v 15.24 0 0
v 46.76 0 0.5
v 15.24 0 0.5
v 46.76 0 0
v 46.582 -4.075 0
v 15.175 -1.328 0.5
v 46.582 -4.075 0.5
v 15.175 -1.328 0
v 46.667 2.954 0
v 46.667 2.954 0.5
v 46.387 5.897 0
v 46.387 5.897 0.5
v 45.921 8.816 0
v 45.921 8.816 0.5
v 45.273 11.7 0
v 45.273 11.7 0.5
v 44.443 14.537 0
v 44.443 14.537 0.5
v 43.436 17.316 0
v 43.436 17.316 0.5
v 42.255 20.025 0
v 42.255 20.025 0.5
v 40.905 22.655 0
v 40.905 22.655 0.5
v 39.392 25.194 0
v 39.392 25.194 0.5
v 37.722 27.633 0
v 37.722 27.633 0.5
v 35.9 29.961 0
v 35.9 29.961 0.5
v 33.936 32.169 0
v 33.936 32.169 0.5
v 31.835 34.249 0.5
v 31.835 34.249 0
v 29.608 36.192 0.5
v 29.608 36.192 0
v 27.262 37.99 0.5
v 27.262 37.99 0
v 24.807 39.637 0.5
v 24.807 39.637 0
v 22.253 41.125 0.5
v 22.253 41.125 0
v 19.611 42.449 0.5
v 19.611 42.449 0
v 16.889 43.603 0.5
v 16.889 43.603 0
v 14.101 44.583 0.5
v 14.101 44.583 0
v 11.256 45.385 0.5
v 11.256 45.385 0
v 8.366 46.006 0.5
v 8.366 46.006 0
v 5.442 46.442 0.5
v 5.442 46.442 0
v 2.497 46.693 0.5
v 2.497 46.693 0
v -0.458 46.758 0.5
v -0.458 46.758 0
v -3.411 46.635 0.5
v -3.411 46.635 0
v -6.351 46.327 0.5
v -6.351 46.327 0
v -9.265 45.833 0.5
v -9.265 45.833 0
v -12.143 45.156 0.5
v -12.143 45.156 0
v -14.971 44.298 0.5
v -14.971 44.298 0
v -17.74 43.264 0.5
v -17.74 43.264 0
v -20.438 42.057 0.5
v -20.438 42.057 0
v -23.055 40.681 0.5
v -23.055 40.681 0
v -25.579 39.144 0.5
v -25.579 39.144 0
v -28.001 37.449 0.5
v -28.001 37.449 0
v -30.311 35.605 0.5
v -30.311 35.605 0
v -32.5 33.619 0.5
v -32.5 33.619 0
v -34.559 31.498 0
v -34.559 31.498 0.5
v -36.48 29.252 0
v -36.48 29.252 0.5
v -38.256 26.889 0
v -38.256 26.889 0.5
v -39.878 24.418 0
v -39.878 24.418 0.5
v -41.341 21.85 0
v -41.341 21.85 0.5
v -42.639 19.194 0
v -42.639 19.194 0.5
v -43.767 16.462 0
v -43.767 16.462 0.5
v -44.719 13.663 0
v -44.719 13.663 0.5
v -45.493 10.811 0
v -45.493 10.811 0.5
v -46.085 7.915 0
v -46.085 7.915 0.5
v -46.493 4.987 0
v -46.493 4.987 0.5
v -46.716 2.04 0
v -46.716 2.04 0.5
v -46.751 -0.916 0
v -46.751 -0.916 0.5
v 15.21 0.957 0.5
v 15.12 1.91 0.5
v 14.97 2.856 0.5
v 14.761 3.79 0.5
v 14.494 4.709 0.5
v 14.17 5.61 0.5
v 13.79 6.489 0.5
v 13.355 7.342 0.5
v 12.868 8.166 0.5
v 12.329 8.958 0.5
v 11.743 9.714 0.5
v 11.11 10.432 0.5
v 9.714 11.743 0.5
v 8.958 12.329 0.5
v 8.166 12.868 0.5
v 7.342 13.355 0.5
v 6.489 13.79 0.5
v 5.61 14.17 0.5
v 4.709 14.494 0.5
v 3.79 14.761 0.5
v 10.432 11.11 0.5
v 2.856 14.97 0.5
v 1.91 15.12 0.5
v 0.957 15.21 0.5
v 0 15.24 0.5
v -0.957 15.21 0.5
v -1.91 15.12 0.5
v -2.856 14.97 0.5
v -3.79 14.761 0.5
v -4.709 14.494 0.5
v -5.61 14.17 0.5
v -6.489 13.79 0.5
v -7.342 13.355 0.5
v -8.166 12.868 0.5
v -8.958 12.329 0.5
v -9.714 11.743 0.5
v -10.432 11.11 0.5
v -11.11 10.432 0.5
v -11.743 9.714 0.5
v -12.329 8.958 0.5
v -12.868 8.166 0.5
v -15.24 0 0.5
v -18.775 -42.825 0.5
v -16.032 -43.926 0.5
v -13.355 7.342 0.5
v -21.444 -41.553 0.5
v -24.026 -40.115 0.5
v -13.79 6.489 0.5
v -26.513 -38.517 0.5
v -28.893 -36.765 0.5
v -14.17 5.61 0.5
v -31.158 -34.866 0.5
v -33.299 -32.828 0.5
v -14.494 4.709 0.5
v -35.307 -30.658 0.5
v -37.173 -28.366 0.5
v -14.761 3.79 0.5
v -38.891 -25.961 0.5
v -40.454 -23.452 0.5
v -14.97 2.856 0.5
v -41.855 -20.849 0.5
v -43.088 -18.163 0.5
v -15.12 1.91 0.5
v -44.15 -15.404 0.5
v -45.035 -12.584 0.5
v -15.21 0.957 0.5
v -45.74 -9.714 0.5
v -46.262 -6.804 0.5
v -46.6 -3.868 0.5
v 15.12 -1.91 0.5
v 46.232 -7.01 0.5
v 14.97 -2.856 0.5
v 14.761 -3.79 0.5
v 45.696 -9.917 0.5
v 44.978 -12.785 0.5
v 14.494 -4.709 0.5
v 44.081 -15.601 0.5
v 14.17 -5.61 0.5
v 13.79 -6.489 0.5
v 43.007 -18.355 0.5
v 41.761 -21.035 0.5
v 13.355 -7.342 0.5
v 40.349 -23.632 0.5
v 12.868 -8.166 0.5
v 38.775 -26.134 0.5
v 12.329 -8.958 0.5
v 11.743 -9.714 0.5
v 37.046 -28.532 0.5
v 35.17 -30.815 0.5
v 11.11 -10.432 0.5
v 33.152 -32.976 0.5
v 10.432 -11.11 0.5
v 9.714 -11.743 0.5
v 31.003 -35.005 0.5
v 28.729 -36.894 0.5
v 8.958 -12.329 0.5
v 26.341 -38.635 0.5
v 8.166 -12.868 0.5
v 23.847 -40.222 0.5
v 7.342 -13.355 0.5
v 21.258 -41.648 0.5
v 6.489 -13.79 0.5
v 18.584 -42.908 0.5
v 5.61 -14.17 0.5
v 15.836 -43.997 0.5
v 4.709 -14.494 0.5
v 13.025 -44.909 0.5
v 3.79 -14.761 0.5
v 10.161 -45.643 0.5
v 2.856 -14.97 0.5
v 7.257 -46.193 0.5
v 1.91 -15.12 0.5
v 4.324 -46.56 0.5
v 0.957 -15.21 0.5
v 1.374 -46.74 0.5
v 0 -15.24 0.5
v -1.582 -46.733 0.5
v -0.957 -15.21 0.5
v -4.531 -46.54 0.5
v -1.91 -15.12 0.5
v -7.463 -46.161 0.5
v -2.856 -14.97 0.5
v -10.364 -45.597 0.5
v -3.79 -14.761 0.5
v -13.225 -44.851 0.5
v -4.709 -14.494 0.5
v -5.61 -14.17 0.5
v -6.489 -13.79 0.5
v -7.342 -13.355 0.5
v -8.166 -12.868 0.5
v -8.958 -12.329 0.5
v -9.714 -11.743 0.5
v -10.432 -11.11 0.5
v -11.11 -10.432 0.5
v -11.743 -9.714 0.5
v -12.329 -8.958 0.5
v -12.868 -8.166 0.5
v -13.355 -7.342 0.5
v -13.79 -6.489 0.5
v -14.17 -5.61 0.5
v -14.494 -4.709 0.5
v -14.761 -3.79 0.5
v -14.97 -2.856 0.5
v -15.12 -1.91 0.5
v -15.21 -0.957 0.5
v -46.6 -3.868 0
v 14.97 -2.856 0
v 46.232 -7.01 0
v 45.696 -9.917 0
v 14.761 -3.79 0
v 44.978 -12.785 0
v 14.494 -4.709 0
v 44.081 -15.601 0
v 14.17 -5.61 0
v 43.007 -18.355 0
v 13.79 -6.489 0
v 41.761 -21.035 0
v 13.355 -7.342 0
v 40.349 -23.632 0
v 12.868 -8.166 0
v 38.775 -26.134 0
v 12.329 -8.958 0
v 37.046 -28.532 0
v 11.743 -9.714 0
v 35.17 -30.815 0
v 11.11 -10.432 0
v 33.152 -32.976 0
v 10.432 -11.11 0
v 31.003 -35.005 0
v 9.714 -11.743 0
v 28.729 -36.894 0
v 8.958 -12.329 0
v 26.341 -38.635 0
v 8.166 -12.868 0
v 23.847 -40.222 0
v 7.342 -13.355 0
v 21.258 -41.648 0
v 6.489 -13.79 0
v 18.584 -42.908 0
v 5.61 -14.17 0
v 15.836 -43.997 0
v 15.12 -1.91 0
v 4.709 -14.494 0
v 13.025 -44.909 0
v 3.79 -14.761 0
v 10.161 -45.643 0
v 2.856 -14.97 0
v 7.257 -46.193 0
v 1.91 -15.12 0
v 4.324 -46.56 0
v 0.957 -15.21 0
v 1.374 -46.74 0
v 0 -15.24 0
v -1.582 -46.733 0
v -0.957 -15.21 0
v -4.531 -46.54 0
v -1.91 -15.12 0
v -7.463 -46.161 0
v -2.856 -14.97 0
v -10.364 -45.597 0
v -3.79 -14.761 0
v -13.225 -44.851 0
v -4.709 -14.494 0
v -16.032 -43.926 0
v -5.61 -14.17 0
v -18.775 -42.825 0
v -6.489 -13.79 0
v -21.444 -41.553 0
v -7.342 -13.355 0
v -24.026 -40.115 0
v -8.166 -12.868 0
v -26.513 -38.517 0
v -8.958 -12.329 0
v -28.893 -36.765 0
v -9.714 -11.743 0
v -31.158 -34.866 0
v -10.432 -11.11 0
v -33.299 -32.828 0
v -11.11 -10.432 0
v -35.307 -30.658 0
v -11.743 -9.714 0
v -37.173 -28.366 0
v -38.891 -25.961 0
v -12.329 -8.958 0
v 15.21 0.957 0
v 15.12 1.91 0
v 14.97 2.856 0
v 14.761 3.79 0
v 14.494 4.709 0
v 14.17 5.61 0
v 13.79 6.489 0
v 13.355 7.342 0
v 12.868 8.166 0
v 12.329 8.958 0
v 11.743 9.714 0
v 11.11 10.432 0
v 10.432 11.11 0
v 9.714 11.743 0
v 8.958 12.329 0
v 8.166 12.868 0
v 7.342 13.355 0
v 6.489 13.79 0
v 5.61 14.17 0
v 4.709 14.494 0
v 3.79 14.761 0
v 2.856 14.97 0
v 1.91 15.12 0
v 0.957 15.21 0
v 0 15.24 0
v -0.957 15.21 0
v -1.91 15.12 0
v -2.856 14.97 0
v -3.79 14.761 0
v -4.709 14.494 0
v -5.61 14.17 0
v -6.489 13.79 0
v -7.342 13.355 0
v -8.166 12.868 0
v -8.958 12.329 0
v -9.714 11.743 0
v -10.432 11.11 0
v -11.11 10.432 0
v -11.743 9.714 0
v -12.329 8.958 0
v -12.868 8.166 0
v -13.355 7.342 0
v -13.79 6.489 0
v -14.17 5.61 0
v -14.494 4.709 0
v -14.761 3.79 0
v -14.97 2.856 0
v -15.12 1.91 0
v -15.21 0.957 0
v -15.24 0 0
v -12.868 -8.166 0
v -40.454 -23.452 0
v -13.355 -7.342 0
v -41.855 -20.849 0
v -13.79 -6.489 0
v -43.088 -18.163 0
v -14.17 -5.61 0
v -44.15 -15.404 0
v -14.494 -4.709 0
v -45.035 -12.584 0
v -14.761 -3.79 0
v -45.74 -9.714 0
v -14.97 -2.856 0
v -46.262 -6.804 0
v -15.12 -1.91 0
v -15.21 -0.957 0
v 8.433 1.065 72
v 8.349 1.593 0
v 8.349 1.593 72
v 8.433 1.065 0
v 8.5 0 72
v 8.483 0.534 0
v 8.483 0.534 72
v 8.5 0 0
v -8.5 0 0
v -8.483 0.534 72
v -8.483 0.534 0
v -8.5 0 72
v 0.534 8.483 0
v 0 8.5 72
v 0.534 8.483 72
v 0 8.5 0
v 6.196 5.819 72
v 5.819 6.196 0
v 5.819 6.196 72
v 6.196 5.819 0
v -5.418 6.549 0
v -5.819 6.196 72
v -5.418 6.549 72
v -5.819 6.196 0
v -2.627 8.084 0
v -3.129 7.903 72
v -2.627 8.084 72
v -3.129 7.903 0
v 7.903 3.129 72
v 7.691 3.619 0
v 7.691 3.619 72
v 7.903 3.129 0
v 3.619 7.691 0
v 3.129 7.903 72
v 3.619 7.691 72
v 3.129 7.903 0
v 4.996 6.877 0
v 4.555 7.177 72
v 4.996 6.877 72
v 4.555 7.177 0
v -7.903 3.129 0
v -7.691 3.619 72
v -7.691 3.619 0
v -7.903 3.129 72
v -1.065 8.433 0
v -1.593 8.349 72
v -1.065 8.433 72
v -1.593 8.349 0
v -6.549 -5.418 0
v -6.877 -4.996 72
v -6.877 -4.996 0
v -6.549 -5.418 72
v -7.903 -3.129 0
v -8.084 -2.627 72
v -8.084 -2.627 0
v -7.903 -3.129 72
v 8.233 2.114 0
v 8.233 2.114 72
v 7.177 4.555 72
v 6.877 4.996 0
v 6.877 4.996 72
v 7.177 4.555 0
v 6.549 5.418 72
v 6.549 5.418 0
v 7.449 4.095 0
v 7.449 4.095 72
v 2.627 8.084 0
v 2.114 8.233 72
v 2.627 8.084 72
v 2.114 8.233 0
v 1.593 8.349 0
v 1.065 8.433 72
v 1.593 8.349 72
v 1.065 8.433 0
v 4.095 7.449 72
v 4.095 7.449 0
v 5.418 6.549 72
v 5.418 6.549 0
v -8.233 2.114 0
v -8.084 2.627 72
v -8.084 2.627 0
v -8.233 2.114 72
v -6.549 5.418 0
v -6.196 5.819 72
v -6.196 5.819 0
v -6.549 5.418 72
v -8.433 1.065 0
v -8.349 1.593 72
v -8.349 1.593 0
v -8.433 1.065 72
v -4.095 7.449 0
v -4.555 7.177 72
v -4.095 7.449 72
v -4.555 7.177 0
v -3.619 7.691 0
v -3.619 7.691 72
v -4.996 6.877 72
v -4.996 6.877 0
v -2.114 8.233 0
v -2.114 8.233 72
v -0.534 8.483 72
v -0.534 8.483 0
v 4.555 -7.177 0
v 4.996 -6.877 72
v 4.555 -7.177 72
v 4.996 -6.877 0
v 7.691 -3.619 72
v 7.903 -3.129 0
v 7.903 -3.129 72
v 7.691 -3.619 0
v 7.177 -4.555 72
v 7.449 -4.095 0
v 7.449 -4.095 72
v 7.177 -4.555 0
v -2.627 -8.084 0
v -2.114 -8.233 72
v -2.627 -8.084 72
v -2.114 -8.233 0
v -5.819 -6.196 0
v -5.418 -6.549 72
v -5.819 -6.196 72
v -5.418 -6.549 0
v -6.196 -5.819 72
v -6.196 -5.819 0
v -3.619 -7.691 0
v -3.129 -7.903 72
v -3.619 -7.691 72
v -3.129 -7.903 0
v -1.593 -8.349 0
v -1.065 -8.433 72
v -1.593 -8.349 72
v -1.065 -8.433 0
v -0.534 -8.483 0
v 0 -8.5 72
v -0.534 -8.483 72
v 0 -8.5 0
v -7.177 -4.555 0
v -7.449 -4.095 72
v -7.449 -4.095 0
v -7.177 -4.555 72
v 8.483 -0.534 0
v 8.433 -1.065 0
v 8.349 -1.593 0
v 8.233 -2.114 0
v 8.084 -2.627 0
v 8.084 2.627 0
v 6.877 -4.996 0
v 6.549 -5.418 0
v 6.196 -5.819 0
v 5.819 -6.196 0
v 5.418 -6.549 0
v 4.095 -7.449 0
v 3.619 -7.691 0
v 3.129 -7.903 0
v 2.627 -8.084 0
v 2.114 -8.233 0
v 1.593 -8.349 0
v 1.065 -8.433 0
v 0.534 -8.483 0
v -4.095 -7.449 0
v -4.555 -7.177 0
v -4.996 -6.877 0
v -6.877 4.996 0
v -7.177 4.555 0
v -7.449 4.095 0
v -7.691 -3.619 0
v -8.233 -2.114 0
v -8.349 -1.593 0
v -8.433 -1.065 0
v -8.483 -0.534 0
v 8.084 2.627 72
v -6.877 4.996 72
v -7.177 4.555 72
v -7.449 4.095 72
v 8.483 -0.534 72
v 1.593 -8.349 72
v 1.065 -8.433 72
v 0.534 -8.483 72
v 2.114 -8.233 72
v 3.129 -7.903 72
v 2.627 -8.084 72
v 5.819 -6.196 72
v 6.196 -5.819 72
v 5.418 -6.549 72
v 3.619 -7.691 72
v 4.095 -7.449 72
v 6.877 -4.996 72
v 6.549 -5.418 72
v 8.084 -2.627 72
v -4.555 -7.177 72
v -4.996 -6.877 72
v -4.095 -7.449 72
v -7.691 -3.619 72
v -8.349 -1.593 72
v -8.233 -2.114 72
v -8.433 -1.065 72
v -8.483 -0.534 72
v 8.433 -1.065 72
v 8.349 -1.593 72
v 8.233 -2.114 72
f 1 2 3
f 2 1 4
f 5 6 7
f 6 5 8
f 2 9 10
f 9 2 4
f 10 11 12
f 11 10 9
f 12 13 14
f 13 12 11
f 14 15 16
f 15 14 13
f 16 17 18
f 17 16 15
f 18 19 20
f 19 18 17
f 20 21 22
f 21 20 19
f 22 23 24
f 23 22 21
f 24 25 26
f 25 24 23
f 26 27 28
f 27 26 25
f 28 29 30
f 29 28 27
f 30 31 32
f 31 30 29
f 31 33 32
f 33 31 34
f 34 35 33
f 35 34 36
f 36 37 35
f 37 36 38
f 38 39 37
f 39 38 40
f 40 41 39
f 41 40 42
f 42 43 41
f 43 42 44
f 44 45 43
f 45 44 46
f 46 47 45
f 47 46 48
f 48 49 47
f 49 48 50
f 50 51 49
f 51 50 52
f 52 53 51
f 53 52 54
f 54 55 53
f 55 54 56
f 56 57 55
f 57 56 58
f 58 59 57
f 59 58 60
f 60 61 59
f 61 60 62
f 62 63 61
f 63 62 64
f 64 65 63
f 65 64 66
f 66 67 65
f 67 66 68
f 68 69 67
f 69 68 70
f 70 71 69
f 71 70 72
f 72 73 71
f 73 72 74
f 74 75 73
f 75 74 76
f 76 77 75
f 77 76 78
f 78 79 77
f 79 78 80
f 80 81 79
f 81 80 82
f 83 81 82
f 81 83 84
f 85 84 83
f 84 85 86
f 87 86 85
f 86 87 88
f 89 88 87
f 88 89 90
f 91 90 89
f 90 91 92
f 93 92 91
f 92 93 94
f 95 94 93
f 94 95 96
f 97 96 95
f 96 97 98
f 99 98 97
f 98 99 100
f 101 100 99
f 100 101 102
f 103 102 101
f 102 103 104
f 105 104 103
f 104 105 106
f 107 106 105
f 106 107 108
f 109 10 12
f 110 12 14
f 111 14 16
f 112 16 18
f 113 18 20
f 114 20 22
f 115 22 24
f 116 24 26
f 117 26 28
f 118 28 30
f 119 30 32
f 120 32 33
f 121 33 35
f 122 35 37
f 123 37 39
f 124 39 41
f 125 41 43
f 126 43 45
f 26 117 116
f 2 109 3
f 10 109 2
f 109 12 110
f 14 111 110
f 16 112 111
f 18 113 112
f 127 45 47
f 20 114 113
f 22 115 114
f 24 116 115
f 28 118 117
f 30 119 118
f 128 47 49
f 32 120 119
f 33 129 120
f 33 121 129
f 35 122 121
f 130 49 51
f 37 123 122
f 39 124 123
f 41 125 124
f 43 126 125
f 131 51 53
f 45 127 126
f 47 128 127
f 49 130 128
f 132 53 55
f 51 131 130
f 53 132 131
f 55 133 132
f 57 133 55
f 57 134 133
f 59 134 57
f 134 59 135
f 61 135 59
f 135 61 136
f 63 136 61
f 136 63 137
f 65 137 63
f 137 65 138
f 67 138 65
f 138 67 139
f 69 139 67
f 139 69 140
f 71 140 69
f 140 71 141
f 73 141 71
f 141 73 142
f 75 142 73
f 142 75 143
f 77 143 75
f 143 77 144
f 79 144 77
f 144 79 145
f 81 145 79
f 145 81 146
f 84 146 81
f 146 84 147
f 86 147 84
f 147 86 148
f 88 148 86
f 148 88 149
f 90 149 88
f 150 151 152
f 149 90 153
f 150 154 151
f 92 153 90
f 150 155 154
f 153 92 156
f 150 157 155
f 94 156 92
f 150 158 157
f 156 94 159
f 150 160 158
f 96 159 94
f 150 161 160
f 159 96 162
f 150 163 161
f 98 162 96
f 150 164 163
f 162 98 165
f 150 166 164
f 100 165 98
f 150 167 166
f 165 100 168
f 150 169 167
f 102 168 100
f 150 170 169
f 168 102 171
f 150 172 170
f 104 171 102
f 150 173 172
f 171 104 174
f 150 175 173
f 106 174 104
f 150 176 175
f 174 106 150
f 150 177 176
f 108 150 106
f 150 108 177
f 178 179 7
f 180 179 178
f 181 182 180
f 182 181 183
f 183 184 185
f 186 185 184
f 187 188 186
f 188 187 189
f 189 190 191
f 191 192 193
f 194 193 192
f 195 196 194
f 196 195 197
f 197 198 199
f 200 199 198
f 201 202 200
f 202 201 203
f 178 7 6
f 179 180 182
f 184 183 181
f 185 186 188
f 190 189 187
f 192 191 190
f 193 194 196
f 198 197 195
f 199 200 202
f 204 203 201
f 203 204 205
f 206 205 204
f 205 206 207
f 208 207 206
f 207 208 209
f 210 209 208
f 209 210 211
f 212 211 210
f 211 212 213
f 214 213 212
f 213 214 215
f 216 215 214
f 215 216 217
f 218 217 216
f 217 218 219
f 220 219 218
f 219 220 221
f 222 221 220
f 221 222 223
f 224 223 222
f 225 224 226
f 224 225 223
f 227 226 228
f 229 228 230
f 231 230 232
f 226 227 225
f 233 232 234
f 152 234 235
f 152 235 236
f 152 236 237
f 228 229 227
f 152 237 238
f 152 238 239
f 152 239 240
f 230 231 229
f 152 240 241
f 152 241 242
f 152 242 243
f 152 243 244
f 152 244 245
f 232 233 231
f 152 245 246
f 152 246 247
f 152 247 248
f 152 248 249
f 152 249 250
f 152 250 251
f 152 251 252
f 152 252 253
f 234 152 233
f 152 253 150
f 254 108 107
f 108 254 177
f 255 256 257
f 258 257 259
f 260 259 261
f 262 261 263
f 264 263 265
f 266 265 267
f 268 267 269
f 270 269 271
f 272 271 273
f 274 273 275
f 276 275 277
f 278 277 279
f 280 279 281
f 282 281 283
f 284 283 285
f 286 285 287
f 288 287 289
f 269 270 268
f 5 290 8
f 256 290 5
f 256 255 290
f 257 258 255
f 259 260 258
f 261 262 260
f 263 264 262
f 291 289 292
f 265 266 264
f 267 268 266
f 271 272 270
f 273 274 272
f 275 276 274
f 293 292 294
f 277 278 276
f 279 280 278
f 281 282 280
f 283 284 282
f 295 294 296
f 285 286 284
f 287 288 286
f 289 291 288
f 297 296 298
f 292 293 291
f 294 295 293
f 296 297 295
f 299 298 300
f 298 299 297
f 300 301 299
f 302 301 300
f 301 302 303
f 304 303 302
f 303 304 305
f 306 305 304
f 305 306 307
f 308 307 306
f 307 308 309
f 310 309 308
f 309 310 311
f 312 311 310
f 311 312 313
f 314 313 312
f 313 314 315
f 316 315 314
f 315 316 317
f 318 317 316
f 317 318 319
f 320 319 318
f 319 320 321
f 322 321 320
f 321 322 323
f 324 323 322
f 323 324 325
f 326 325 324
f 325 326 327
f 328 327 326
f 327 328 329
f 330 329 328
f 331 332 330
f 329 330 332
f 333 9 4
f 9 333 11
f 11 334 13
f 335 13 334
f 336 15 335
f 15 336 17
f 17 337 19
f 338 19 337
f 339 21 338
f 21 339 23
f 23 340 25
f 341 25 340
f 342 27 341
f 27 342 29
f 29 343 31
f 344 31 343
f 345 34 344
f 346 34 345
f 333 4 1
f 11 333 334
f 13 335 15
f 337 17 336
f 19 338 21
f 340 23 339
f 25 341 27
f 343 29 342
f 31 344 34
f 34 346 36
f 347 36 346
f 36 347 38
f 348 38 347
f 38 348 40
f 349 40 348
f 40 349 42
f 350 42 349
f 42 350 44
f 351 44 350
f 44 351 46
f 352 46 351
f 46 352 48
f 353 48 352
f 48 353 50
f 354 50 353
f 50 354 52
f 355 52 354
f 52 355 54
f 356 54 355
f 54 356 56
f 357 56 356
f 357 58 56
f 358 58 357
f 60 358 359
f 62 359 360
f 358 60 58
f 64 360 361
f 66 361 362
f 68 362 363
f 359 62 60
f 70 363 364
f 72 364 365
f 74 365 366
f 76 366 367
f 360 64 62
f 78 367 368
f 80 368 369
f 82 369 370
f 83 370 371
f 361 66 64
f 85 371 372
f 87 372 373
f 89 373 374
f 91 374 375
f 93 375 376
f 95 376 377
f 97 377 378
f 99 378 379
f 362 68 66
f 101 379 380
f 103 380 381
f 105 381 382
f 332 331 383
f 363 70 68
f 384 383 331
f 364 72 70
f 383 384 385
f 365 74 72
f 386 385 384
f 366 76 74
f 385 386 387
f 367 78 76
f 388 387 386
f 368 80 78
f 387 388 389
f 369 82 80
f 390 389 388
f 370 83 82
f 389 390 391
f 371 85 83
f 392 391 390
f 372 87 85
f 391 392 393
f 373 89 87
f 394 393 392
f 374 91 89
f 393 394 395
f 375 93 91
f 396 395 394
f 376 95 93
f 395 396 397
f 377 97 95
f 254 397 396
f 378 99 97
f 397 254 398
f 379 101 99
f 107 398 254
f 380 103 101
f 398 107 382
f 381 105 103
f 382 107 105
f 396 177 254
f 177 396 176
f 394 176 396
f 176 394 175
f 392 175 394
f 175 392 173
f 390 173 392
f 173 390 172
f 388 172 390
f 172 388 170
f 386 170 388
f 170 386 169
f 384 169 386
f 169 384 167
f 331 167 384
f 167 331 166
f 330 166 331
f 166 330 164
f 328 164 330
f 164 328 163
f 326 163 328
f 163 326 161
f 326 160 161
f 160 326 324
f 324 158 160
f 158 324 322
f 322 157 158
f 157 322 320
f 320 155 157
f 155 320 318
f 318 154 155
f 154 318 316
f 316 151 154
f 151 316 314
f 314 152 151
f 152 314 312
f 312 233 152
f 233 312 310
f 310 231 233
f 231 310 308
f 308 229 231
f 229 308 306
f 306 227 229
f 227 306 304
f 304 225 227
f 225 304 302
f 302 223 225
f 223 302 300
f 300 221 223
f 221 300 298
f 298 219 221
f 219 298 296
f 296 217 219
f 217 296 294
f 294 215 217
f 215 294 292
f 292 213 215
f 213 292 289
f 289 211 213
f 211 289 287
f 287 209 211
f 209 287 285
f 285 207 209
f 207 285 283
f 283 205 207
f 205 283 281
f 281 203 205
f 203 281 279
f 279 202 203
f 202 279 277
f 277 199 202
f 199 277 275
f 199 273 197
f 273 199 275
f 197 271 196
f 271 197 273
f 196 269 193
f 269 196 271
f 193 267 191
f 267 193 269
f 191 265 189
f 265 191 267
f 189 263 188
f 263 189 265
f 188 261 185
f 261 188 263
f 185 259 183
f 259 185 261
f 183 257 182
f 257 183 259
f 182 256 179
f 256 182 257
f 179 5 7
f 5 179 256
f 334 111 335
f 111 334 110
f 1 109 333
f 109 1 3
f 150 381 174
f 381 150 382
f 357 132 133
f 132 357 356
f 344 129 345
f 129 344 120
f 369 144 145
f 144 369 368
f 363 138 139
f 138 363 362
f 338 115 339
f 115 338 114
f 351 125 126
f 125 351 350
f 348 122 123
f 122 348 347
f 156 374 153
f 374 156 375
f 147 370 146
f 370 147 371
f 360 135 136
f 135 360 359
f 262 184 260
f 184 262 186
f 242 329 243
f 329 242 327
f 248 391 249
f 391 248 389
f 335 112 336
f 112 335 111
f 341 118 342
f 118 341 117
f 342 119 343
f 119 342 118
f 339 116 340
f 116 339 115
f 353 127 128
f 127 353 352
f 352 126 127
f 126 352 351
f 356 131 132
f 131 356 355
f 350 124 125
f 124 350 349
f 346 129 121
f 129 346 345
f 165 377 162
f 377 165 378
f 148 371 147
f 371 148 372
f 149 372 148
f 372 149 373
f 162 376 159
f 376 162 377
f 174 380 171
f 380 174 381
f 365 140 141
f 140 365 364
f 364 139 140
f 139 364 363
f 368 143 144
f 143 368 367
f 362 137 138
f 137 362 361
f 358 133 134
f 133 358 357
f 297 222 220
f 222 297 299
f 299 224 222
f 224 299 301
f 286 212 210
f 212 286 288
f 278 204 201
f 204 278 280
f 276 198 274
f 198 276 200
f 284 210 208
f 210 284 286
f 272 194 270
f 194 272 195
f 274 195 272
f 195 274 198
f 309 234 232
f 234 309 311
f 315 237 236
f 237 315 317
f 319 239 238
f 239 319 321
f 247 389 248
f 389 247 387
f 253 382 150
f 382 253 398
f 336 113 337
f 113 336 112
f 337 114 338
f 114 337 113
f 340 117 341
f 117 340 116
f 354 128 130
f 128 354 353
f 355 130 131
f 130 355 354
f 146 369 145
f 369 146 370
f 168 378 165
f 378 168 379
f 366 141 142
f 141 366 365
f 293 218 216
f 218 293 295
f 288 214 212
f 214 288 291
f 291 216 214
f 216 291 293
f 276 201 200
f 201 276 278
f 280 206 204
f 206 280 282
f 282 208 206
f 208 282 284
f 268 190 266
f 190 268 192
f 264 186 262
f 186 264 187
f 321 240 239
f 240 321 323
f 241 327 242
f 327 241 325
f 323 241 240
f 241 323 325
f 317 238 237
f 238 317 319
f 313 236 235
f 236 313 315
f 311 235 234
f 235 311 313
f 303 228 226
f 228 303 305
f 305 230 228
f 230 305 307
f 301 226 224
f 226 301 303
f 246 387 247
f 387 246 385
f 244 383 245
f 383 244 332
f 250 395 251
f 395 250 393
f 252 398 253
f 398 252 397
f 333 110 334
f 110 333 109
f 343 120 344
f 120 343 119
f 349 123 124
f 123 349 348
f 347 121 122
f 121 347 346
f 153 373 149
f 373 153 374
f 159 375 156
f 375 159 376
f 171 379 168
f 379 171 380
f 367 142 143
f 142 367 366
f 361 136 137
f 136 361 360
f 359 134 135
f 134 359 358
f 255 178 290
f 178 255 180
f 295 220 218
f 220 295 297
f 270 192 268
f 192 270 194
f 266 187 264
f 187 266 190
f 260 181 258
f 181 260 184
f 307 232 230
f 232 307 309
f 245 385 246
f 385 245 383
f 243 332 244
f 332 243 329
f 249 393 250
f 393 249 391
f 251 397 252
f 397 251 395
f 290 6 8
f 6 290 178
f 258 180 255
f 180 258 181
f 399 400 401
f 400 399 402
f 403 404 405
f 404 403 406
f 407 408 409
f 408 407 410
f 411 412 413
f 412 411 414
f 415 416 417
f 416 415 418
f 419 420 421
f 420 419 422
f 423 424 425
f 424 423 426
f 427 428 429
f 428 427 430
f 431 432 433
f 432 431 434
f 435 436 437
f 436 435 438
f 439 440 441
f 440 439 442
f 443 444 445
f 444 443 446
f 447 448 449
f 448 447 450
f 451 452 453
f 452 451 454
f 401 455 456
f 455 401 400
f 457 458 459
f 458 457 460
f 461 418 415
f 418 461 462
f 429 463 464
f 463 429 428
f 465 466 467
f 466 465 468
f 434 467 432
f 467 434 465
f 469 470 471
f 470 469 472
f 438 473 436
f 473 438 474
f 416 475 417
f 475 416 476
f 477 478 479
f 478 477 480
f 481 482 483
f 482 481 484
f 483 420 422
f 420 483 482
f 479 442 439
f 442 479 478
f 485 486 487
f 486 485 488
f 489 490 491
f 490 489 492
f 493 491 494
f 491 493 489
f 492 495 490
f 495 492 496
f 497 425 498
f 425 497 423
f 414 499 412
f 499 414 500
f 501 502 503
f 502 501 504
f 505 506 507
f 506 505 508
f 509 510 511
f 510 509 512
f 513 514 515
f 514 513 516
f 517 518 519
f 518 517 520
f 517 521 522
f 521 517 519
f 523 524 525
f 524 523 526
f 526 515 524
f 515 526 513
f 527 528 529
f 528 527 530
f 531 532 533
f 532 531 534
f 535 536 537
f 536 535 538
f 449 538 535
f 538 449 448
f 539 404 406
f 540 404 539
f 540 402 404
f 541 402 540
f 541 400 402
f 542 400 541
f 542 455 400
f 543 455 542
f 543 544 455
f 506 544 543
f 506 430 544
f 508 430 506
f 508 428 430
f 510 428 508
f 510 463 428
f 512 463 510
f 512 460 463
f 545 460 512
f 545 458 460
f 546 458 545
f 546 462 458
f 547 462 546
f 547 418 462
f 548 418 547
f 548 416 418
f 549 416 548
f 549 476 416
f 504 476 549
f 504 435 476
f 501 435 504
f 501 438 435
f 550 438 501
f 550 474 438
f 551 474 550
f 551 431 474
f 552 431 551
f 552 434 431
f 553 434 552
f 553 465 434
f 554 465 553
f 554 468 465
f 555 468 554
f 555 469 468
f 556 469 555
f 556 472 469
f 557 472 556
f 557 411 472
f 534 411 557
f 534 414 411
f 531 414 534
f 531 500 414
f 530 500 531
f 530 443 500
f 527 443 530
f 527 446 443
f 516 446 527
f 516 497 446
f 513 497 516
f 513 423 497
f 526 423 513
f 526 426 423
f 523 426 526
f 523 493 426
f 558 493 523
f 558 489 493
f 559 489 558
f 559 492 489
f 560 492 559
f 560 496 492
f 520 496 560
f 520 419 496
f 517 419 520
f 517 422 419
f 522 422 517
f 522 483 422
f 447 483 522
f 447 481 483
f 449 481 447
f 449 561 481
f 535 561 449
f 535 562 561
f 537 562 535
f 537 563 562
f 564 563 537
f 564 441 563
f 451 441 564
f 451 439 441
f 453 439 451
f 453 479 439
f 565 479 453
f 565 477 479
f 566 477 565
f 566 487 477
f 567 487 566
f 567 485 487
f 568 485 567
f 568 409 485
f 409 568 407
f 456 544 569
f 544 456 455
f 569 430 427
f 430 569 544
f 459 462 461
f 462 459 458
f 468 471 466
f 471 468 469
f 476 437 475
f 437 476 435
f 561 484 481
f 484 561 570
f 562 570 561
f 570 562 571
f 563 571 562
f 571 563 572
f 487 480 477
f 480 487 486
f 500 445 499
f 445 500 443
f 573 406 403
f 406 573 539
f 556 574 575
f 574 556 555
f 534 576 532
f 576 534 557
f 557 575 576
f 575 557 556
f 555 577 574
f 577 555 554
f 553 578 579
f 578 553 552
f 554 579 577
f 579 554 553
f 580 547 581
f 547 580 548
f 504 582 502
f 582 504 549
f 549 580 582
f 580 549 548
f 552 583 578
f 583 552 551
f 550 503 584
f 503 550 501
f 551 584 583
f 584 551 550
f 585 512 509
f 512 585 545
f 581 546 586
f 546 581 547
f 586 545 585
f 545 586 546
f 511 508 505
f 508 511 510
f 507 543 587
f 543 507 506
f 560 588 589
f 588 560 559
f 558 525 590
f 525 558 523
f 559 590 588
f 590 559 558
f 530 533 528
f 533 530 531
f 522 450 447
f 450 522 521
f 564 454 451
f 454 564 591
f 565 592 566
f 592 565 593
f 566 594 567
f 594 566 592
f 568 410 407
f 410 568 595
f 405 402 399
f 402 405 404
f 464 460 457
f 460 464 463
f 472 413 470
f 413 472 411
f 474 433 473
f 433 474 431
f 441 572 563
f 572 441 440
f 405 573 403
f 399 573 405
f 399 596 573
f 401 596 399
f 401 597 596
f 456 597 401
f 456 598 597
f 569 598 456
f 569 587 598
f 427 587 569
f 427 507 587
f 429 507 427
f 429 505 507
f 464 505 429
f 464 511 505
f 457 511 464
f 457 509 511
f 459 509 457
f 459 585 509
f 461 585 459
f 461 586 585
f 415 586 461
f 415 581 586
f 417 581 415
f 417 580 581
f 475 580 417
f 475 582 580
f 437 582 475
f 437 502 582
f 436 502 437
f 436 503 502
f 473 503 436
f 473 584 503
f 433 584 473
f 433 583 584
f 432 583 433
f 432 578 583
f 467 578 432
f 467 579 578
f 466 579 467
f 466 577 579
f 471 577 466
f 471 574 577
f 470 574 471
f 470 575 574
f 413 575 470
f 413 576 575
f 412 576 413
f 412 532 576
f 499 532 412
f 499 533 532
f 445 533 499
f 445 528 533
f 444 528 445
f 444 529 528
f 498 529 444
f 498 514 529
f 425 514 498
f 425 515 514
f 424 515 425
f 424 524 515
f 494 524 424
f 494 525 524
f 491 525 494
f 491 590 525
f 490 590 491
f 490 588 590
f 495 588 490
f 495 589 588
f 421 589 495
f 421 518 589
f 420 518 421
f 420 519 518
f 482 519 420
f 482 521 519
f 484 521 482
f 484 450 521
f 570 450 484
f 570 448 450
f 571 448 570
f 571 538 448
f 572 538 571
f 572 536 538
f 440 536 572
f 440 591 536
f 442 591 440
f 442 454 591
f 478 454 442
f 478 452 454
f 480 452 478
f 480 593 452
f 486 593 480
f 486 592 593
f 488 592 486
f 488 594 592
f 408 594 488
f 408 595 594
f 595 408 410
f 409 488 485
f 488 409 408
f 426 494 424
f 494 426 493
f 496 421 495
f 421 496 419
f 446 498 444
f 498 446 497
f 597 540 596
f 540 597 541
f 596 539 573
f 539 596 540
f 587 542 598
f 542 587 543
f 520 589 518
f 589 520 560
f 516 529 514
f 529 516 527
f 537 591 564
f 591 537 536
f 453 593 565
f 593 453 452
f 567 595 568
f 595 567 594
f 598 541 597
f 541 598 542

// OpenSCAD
$fn=100;

width=18;
pitch=18;
thickness=.125;
pipe=2.125;
length=36;


flightwidth=7.88;
r1=11.69;
r2=3.81;

m = 4; //multiplier for printing

difference() {
pieSlice(355,r1*m,thickness*m);
# cylinder(6,r2*m,r2*m,center=true);
}

cylinder(pitch*m,pipe*m,pipe*m,center=false);

module pieSlice(a, r, h){
  // a:angle, r:radius, h:height
  rotate_extrude(angle=a) square([r,h]);
}
